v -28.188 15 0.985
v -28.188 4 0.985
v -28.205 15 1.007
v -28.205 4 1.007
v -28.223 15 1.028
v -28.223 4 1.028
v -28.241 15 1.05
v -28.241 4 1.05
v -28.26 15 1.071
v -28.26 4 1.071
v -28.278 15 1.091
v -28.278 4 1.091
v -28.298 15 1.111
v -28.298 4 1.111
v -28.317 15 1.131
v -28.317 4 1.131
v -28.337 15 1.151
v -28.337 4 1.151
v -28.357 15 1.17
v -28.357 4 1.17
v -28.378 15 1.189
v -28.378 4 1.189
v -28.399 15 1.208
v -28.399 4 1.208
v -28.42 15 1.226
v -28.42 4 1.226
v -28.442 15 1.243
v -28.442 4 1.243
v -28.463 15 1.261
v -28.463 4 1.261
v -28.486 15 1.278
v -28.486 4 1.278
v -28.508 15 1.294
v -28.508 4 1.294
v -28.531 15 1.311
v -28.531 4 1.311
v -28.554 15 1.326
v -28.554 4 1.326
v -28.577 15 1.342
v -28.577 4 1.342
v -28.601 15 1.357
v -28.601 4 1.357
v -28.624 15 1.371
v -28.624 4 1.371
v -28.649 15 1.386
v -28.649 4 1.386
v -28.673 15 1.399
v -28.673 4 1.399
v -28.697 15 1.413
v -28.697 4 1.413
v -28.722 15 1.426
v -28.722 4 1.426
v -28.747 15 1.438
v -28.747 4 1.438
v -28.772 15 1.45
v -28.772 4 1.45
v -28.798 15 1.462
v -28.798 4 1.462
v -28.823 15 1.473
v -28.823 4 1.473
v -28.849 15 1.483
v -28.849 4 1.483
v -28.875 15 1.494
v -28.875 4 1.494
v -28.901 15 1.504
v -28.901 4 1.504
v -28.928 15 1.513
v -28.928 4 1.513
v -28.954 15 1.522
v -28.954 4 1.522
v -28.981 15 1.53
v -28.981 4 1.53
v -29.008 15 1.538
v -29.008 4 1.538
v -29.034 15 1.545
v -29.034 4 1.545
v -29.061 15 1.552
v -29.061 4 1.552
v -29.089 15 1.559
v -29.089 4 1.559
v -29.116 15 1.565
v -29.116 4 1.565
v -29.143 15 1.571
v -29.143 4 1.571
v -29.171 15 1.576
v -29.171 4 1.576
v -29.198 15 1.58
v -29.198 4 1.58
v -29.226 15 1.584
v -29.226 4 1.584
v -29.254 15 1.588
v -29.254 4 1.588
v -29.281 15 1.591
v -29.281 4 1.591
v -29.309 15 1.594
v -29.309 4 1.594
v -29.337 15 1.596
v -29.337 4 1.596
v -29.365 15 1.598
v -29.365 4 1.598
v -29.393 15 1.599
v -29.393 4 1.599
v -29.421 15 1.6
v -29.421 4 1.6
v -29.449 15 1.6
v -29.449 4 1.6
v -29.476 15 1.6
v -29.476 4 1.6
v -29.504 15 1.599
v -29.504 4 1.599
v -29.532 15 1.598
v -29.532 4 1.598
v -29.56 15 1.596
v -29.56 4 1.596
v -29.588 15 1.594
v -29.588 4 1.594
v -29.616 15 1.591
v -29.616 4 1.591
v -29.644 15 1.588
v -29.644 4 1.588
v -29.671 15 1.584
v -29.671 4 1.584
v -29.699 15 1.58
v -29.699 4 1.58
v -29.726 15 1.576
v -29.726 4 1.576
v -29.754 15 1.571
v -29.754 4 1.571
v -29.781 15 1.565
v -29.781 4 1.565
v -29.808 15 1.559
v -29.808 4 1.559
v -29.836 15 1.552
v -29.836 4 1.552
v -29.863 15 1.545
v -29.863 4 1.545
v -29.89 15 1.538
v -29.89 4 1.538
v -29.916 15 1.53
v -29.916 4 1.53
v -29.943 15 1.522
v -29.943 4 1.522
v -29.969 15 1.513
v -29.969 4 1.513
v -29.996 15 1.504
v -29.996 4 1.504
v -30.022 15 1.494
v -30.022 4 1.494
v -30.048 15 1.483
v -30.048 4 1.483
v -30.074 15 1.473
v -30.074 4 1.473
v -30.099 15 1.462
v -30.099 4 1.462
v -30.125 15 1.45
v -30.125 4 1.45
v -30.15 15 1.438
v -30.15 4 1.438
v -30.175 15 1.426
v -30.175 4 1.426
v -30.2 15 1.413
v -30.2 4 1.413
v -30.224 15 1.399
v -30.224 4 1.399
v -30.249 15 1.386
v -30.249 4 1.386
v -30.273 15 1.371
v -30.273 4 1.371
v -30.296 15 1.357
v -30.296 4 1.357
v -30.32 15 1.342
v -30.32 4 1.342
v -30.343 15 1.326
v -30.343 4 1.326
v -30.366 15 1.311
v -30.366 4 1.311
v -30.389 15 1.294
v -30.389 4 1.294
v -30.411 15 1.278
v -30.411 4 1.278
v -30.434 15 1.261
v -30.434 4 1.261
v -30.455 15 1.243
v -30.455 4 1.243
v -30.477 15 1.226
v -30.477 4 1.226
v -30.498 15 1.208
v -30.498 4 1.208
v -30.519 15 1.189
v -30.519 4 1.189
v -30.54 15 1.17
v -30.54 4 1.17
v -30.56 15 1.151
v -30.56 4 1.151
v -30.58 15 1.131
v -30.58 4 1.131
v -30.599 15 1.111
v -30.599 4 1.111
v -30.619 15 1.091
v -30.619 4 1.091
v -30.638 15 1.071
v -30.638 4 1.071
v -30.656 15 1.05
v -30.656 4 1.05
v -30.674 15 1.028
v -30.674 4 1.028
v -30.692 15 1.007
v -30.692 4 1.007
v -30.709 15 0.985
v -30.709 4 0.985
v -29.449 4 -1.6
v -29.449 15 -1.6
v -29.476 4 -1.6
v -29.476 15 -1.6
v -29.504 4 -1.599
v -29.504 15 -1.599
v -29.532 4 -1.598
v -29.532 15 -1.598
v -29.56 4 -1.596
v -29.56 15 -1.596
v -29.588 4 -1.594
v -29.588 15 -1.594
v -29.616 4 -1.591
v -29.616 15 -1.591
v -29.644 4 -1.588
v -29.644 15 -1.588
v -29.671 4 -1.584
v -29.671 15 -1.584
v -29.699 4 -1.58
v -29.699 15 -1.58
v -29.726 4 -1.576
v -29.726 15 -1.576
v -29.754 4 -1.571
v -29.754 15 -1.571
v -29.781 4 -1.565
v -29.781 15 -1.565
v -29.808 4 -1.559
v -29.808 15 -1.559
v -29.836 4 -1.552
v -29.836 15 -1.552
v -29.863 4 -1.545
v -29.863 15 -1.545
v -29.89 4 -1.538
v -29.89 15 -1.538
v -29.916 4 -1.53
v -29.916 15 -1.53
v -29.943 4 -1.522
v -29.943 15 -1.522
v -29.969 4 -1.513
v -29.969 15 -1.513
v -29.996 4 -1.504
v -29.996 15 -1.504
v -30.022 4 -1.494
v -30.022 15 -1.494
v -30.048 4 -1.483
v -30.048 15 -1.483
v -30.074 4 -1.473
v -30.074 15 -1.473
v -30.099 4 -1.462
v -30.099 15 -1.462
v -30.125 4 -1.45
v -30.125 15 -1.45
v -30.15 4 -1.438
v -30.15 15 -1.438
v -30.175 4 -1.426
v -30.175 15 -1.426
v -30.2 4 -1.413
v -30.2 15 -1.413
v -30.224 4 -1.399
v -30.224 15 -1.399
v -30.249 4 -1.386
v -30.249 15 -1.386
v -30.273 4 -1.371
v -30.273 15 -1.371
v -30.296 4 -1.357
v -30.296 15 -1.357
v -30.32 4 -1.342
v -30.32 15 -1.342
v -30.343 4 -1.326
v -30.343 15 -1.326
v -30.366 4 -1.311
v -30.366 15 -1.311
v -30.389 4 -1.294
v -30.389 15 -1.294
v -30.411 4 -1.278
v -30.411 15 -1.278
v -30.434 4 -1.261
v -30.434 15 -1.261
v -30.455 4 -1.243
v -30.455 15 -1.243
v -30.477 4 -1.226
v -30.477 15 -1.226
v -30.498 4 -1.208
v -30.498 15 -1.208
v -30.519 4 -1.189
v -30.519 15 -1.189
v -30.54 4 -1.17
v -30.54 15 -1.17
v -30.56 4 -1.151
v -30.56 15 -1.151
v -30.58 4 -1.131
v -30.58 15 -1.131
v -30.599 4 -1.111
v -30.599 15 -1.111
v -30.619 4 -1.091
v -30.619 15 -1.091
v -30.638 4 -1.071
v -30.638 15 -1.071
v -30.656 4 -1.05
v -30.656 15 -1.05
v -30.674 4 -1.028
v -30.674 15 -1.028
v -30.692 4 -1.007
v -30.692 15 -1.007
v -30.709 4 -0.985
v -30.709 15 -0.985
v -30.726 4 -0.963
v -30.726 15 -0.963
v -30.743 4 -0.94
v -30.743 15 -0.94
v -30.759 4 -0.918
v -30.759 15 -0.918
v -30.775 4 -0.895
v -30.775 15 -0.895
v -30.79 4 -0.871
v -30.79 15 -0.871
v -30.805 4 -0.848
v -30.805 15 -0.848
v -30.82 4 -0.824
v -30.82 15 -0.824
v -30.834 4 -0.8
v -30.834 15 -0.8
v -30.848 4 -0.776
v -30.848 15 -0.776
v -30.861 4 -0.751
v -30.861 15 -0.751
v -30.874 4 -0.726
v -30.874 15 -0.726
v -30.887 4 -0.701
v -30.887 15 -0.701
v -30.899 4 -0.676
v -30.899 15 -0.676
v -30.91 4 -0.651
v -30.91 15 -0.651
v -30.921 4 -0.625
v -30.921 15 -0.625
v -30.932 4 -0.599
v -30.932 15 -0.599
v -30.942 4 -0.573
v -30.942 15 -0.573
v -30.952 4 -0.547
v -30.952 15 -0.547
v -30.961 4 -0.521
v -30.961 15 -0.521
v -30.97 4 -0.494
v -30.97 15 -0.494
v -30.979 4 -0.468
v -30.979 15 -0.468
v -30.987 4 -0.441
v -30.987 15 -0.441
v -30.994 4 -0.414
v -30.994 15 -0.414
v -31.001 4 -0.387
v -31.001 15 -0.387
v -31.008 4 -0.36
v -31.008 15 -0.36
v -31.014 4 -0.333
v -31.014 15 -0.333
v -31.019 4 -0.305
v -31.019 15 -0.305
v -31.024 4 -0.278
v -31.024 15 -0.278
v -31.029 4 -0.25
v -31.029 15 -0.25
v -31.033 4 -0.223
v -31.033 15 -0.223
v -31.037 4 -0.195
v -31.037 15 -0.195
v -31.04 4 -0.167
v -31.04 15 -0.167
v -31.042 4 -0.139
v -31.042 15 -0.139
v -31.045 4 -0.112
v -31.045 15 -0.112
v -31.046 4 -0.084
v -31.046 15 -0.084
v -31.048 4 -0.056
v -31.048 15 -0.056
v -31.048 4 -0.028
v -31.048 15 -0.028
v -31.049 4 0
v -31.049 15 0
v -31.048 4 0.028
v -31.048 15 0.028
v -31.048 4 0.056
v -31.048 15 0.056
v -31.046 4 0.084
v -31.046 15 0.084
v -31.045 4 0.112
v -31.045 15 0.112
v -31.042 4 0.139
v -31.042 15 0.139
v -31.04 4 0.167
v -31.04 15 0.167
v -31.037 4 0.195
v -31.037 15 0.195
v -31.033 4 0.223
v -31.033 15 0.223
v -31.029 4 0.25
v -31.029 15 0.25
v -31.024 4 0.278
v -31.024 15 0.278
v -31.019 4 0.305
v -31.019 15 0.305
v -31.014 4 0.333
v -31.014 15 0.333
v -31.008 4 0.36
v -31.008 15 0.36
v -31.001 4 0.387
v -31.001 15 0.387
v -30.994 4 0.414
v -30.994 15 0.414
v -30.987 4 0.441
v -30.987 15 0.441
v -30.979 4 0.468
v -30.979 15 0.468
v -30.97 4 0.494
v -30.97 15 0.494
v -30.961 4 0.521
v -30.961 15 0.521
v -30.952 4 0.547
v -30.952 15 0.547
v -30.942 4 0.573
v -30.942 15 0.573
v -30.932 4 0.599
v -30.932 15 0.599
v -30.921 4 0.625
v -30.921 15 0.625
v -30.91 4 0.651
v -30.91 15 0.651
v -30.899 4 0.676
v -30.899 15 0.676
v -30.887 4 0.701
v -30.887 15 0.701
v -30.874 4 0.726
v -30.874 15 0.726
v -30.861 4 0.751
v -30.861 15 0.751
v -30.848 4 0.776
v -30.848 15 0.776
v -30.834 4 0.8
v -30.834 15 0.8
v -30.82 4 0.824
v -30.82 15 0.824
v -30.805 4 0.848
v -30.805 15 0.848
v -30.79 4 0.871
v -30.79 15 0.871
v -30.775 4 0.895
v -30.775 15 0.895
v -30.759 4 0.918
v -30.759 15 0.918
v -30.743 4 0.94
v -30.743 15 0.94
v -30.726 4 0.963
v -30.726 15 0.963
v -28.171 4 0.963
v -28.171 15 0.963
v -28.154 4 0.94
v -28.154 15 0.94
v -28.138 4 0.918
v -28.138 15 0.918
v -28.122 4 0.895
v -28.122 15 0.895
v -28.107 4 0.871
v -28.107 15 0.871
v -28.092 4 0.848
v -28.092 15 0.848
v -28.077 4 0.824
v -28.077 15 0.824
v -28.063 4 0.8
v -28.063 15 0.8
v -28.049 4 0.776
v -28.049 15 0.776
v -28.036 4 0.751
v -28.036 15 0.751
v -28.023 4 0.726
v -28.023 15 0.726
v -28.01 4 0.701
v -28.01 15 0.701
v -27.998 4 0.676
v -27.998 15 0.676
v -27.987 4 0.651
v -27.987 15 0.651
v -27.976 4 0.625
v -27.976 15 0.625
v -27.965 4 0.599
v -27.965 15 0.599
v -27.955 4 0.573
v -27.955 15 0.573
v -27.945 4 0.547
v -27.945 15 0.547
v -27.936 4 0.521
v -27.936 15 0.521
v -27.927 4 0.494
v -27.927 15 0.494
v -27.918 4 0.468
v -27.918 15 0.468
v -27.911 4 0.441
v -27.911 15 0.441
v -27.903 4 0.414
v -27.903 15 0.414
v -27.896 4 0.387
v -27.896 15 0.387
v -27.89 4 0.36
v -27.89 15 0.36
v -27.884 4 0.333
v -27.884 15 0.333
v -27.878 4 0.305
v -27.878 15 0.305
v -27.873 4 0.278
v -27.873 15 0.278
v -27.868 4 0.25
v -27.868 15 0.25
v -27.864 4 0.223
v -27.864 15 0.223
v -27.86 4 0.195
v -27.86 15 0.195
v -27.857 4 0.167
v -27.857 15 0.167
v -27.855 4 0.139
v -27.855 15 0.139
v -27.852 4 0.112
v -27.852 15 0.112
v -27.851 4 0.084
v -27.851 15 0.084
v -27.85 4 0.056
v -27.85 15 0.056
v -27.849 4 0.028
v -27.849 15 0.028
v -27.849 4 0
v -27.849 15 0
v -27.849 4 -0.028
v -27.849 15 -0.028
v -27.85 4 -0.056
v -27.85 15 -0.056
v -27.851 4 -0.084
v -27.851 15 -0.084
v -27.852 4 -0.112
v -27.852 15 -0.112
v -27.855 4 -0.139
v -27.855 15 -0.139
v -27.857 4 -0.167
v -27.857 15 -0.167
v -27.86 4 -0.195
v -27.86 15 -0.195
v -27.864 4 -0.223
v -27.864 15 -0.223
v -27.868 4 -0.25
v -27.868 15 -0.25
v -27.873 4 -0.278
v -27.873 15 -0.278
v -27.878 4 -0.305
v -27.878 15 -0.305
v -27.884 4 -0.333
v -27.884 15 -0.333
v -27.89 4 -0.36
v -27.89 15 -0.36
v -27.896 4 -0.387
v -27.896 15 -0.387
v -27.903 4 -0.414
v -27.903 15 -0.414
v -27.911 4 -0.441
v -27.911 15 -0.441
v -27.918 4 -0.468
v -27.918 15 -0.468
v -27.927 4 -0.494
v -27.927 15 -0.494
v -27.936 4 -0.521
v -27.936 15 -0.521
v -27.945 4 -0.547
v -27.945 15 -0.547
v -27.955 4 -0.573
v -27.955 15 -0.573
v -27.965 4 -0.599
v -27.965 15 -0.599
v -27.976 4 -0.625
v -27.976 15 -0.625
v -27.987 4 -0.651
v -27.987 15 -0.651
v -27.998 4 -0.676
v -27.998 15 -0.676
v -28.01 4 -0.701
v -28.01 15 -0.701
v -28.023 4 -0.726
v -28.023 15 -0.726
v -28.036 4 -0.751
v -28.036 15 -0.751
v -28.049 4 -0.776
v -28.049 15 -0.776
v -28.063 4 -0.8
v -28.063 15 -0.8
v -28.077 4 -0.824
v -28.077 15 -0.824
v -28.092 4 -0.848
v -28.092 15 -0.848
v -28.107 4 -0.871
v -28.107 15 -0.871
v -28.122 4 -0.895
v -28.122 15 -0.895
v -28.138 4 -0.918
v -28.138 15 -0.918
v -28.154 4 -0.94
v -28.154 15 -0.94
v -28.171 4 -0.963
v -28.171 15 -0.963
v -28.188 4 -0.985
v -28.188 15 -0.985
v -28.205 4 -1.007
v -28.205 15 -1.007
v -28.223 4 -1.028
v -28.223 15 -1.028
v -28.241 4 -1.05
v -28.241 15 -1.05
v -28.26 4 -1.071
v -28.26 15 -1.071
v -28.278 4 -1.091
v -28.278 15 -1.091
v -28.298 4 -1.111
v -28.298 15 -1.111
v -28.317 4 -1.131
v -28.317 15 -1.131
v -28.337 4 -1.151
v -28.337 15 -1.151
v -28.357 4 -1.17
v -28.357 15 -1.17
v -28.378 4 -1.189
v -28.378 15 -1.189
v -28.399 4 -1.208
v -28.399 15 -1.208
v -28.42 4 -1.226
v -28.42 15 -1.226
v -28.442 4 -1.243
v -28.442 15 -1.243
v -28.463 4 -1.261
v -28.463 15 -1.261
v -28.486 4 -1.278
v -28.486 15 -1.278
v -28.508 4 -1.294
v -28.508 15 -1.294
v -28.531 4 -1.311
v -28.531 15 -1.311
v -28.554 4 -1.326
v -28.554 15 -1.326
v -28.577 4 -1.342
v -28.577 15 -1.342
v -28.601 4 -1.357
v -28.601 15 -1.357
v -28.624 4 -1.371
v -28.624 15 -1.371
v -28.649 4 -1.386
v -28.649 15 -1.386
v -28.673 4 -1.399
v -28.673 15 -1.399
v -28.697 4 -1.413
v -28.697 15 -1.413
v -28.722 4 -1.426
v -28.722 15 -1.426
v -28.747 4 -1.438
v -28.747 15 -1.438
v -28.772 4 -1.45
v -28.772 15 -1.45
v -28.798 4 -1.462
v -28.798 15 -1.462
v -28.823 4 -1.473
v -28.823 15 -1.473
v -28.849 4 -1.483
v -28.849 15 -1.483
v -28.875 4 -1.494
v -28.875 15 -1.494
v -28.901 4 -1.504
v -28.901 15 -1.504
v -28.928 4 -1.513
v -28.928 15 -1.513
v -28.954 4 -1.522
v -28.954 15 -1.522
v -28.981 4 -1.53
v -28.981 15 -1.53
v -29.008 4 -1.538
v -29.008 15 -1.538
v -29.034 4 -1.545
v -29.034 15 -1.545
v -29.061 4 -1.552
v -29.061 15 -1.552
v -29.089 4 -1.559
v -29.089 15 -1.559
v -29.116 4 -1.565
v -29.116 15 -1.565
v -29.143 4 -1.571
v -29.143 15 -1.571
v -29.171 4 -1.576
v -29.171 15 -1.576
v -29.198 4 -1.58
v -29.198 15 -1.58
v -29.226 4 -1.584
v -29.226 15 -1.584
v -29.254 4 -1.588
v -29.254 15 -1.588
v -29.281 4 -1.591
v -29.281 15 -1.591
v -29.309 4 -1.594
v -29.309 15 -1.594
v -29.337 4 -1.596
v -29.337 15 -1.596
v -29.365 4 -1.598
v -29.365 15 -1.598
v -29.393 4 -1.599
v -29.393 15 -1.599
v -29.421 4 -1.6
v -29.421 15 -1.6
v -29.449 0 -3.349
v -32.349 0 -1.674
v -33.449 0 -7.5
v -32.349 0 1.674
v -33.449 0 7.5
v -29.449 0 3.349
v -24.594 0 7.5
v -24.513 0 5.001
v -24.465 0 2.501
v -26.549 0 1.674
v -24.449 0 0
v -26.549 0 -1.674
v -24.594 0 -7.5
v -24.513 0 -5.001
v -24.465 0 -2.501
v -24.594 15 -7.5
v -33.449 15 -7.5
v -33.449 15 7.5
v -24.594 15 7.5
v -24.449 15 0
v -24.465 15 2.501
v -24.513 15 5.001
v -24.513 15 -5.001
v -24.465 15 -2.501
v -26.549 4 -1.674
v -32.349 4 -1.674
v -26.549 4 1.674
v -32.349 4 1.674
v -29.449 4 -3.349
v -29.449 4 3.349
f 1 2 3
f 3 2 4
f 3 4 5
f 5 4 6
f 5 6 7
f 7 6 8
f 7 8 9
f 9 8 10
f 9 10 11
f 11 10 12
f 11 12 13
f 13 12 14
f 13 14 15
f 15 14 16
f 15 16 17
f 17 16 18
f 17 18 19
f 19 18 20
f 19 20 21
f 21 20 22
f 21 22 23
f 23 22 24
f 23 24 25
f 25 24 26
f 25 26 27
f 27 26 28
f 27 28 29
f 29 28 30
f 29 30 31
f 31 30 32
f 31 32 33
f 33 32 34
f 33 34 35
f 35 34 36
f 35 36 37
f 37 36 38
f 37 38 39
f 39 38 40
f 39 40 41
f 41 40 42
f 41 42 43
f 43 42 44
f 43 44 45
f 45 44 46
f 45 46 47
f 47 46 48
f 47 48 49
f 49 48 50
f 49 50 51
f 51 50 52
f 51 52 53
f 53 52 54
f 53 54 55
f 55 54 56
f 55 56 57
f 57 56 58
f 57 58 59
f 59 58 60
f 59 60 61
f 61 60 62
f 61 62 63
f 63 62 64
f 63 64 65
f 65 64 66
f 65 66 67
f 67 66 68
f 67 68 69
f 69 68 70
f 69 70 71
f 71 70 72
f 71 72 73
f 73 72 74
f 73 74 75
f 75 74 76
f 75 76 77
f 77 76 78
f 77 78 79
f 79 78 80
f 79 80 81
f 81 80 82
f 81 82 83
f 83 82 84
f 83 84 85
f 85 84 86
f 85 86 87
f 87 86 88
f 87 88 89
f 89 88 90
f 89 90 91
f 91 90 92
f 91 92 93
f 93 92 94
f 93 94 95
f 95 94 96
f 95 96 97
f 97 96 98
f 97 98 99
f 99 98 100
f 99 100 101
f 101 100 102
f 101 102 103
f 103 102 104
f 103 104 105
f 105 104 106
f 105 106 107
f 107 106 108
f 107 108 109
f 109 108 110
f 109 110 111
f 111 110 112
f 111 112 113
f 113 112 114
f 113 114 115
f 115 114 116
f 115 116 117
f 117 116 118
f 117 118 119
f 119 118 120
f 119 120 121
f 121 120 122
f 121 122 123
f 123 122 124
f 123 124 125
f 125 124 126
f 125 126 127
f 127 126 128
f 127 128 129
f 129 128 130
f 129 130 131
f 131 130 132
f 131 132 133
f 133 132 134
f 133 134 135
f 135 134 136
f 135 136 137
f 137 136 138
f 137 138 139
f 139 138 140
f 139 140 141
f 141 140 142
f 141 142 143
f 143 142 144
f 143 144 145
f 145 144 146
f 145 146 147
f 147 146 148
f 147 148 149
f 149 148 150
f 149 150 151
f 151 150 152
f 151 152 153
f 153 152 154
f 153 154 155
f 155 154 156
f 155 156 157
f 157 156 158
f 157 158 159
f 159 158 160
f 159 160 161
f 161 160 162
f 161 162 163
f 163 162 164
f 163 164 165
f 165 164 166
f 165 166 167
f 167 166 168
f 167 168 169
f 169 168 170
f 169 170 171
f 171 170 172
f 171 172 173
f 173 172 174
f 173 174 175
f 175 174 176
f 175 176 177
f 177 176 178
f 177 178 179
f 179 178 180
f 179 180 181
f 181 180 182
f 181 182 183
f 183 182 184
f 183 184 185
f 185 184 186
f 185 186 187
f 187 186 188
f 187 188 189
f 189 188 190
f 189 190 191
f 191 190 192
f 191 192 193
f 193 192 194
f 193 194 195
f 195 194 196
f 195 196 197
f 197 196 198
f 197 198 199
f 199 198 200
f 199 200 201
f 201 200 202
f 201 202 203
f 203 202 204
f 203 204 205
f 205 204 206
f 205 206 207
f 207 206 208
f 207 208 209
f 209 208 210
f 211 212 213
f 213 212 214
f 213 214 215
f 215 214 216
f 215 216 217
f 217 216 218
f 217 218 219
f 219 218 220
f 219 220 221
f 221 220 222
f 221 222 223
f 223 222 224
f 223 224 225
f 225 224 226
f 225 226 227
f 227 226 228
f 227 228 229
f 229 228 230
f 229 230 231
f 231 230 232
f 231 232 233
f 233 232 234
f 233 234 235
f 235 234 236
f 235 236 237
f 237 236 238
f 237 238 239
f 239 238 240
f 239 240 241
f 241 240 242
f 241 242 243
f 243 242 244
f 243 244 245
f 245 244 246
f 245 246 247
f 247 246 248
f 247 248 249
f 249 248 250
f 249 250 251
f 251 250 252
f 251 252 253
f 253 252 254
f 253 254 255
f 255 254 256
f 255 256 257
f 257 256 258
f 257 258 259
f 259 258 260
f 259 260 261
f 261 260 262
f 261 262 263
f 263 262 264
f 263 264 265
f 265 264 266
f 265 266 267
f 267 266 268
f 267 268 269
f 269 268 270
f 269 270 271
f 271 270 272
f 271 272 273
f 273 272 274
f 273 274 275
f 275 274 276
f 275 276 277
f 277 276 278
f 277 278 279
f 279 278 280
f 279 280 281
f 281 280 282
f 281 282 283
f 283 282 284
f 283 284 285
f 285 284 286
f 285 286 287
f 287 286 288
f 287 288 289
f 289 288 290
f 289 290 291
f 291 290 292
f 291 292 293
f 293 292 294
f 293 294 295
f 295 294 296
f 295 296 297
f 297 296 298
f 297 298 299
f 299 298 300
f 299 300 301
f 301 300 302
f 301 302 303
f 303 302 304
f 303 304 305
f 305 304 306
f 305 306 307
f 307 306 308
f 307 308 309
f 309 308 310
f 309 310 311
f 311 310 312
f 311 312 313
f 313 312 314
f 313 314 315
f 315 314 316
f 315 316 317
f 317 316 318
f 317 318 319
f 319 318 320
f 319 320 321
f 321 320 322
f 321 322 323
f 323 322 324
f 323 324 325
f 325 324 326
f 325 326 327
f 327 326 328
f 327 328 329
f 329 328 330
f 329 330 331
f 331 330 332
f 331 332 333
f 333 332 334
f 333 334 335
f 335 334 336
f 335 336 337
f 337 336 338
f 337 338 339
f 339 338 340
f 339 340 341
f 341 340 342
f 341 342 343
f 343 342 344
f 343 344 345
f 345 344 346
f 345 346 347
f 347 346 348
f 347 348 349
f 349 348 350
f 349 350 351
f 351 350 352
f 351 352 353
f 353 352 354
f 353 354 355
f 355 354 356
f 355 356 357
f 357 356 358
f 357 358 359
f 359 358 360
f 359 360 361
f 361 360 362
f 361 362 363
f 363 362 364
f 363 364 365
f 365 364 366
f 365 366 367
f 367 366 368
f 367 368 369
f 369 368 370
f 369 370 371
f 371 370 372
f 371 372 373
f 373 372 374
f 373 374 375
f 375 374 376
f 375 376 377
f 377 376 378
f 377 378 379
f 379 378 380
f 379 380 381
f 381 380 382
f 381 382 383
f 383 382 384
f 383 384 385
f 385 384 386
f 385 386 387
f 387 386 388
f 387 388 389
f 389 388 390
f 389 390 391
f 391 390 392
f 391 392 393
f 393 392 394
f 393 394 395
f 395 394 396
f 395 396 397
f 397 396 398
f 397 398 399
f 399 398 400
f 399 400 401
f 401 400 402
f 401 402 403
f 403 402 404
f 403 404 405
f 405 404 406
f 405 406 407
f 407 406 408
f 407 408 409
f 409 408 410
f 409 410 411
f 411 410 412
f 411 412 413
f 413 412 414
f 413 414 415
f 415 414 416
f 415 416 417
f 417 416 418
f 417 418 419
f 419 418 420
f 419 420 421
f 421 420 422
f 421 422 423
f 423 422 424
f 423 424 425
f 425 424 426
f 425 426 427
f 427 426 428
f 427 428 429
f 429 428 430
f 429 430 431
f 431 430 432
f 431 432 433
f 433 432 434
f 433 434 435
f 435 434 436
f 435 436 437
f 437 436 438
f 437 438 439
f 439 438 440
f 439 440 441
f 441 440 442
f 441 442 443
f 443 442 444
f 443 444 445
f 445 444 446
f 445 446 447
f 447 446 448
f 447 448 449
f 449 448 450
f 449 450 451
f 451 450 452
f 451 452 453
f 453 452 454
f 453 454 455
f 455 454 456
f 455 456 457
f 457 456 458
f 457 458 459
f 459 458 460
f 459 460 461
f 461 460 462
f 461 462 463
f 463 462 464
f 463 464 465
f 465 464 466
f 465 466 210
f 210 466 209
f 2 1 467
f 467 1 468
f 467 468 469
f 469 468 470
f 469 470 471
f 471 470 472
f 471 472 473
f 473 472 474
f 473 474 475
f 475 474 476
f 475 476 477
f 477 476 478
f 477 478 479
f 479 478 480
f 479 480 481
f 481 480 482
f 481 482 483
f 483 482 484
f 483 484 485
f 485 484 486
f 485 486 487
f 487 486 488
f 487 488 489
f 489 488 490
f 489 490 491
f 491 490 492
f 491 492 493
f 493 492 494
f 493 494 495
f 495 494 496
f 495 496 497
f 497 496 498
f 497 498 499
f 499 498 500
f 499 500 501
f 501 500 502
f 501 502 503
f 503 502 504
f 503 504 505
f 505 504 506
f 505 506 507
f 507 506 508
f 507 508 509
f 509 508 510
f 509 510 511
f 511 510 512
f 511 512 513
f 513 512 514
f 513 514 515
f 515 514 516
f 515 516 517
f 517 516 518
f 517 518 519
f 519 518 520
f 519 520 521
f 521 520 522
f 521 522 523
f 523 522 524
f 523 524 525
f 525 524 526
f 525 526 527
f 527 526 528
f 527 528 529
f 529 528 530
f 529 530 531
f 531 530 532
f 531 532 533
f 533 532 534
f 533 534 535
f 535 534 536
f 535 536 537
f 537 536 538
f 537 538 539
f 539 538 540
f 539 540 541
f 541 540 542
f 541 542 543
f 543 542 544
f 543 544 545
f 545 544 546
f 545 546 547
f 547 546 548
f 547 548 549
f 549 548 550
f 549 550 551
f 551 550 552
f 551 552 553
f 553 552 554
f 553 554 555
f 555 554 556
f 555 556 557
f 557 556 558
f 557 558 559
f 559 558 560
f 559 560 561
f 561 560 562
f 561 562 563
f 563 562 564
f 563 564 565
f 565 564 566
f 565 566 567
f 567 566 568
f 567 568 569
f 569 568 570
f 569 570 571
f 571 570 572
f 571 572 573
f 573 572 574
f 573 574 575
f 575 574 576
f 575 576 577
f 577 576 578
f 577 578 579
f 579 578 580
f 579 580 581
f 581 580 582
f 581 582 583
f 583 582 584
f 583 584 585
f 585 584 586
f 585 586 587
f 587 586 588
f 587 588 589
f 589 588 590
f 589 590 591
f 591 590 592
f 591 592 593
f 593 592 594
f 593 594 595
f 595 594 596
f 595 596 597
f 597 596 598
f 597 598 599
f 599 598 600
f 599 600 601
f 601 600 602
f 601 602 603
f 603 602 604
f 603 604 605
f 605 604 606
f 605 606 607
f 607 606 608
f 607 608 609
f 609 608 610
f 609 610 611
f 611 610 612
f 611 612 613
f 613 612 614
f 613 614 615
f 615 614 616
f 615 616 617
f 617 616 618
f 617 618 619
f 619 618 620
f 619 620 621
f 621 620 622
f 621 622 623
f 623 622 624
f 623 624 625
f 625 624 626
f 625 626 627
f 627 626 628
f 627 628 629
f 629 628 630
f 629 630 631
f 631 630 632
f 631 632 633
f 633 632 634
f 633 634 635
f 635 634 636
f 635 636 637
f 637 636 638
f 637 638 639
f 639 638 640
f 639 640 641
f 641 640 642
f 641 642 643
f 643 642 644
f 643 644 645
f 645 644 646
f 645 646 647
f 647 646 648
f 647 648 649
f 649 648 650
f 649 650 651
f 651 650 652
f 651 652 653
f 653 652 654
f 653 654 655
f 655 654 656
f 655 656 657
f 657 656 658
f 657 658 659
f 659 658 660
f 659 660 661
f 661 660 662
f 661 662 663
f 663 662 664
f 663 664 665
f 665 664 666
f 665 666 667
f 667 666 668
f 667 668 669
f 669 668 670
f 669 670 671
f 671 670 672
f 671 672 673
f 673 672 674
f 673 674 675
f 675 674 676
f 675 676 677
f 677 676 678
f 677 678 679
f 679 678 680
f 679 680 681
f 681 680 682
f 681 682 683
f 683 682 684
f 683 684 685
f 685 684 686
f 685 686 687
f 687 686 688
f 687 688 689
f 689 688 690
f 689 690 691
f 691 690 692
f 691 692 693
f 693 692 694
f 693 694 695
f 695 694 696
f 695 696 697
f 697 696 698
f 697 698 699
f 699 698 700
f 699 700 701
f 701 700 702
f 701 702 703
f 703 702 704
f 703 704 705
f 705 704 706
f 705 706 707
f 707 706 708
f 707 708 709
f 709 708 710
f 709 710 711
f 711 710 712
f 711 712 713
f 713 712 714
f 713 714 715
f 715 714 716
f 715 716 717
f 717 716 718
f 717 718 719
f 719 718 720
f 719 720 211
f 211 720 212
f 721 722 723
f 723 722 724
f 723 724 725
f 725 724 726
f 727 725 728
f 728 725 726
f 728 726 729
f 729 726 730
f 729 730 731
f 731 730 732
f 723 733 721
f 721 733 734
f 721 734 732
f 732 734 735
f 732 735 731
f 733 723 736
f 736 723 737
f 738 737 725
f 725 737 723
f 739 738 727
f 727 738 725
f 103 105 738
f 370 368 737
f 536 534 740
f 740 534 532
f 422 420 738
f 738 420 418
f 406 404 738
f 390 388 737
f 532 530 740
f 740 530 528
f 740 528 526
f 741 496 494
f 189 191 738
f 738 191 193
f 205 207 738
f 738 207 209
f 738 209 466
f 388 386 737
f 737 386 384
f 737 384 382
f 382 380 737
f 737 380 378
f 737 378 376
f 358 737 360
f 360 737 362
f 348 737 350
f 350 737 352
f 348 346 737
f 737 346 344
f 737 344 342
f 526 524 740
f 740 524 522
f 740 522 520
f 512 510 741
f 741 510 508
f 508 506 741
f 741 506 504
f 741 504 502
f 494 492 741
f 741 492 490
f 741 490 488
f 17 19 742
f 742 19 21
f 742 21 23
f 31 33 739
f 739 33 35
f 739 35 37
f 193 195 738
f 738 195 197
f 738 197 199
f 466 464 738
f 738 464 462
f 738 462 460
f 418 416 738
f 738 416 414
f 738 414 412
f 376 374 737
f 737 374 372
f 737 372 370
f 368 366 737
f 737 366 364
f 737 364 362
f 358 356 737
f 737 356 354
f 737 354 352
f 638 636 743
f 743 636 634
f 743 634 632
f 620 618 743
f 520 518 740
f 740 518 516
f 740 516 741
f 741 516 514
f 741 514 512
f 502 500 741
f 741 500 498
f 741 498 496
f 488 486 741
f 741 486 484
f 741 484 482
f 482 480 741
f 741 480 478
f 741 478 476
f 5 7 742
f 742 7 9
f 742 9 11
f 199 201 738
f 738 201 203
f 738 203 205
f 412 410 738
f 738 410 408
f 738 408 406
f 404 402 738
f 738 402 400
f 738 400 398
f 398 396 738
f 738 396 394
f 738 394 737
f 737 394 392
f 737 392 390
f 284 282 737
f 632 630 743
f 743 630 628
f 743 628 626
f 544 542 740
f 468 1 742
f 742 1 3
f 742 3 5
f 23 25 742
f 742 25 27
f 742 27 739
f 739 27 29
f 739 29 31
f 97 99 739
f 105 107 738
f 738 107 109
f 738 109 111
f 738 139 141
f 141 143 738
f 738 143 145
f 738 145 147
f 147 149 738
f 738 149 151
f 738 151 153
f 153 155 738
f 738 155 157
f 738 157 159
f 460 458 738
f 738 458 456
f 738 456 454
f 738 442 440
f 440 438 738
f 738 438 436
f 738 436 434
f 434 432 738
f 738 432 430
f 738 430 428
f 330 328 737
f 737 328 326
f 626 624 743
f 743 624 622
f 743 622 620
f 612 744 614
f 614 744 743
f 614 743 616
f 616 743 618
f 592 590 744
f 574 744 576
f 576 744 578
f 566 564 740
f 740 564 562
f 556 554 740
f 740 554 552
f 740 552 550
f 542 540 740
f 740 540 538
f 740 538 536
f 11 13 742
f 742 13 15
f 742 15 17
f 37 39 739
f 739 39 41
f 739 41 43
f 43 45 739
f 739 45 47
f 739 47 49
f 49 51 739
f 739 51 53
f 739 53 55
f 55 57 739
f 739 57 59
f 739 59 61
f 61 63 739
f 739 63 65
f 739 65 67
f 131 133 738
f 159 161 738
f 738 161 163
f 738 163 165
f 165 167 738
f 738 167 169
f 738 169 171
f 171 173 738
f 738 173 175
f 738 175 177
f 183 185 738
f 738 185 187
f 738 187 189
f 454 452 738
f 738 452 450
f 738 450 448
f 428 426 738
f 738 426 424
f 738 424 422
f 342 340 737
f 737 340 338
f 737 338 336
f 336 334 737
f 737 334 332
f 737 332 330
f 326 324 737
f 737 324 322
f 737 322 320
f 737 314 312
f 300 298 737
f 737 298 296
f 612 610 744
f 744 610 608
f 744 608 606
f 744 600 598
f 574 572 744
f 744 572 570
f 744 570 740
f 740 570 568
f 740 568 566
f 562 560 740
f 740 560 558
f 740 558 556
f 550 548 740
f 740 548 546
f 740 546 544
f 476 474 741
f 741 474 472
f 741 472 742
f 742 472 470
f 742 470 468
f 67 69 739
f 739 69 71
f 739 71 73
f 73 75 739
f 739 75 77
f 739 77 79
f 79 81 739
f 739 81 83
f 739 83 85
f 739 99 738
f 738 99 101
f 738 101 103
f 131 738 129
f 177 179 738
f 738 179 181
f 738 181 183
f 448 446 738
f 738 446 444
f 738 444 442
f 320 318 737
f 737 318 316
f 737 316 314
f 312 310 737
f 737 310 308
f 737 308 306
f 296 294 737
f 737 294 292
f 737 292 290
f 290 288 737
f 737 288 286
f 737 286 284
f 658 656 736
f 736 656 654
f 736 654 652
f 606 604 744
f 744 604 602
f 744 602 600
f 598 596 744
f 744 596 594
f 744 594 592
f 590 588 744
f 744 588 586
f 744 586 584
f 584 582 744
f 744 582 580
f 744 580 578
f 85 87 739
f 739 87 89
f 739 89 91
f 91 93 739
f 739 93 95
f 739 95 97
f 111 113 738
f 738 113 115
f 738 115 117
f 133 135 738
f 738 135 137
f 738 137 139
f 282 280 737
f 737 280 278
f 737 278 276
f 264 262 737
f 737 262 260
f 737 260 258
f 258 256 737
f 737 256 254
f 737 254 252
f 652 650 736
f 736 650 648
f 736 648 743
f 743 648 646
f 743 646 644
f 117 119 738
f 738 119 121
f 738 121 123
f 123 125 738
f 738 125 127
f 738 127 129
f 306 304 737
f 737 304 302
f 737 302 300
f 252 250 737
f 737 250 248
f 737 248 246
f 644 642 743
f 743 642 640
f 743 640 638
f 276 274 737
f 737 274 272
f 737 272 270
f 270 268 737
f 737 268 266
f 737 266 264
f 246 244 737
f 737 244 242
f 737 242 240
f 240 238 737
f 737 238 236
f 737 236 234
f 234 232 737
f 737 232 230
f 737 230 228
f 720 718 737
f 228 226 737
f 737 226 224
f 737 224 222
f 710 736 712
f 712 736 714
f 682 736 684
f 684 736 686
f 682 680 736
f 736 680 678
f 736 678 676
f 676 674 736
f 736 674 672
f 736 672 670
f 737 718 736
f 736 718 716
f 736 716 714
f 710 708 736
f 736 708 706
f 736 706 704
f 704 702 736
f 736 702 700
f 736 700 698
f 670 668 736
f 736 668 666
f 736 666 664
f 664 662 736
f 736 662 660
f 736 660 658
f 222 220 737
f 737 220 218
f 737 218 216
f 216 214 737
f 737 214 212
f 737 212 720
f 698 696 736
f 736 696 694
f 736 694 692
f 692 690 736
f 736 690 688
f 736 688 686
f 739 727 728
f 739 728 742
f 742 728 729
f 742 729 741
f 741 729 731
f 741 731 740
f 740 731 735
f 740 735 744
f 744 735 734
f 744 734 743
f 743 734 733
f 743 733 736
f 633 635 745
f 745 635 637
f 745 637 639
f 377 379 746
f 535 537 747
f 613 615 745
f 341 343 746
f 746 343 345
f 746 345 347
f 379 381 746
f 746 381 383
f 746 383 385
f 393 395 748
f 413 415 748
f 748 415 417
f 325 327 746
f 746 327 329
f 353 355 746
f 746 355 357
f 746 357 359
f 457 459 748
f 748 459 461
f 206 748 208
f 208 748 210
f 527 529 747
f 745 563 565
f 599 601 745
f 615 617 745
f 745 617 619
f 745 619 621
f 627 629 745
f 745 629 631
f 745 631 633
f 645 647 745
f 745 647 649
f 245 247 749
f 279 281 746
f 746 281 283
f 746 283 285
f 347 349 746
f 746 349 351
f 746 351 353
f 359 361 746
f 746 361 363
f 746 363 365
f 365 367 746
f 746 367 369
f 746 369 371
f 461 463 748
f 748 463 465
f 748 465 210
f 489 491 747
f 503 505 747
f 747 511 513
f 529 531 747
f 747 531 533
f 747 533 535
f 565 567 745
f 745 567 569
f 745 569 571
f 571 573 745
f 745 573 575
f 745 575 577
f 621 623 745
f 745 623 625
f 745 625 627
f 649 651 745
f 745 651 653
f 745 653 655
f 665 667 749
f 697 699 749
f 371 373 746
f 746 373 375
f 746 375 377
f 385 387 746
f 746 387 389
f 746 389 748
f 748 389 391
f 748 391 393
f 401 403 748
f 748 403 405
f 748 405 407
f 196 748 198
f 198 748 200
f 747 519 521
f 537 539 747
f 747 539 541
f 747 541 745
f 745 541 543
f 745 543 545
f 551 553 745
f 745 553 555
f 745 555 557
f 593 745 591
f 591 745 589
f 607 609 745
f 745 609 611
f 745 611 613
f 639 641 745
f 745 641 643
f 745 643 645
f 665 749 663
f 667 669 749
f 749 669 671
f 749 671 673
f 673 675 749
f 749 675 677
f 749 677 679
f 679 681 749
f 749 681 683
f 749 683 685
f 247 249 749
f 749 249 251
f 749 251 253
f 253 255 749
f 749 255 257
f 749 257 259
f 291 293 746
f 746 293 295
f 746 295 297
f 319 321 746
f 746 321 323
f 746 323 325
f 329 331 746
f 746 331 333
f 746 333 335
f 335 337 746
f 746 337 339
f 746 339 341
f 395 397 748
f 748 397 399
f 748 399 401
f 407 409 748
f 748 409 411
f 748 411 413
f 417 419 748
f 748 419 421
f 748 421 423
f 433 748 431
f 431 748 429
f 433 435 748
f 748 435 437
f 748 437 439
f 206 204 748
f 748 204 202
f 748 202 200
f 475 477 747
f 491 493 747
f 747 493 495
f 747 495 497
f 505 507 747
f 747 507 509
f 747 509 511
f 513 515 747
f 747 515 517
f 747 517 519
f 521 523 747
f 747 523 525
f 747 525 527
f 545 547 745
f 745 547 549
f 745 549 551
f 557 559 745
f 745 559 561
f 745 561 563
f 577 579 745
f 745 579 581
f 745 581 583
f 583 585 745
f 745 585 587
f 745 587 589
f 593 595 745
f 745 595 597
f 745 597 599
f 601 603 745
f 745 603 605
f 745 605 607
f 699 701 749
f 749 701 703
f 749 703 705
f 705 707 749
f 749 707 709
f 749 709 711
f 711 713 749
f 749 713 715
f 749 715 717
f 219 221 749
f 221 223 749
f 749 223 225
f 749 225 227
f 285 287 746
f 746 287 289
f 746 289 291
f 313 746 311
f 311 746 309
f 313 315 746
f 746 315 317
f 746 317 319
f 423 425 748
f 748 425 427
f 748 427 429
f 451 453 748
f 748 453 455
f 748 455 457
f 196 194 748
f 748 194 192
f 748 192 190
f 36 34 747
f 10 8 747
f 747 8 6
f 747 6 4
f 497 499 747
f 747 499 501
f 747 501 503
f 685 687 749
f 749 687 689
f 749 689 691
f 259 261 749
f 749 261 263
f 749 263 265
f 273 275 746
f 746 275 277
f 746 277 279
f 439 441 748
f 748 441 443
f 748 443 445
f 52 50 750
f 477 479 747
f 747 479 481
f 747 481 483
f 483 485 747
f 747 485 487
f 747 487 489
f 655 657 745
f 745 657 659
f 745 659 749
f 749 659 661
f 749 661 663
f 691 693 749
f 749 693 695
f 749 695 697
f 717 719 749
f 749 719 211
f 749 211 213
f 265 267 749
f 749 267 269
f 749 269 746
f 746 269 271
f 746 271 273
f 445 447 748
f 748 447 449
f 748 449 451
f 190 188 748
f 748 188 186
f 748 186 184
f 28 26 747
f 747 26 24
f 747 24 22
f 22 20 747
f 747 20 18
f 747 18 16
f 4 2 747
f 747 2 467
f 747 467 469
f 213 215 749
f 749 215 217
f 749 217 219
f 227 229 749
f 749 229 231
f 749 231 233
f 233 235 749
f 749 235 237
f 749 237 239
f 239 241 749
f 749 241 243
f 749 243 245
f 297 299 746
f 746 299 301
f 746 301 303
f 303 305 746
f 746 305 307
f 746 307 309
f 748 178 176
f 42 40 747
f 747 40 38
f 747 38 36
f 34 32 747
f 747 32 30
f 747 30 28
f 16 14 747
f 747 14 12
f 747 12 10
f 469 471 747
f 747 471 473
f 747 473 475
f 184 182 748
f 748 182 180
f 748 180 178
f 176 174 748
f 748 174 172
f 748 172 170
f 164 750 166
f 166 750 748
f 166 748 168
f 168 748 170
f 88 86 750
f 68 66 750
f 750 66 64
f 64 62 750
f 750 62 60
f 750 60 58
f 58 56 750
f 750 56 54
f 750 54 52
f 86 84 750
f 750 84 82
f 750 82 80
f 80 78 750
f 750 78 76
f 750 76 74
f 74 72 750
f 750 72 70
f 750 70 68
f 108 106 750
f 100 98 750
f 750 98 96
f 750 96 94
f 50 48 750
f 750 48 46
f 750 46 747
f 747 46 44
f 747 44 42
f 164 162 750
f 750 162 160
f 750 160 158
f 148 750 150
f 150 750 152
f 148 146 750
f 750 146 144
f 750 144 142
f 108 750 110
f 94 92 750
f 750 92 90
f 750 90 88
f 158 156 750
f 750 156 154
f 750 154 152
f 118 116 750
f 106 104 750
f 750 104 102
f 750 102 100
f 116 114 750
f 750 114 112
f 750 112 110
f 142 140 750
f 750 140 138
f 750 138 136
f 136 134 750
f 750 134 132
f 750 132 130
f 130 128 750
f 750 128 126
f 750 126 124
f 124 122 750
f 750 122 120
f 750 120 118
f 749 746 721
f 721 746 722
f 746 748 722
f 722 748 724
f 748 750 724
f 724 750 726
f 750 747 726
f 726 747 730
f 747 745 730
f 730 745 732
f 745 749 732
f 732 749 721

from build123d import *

# Parameters (mm, degrees)
SKETCH_1_W          = 66.89708457
SKETCH_1_H          = 15
EXTRUDE_1_DEPTH     = 15
CUT_EXTRUDE_1_REACH = 39.417
HOLE_WIZARD_M3_1_D  = 3.2
CUT_EXTRUDE_2_DEPTH = 4


with BuildPart() as part:
    # 草图1 → 凸台-拉伸1 (new body)
    with BuildSketch(Plane(origin=(0, 0, 0), x_dir=(1, 0, 0), z_dir=(0, 1, 0))):
        Rectangle(SKETCH_1_W, SKETCH_1_H)
    extrude(amount=EXTRUDE_1_DEPTH)

    # 草图2 → 切除-拉伸1 (cut, up to next)
    with BuildSketch(Plane.XZ, mode=Mode.PRIVATE) as cut_extrude_1_sk1:
        with BuildLine():
            Line((-24.593570721, 7.5), (33.448542285, 7.5))
            Line((33.448542285, 7.5), (33.448542285, -7.5))
            Line((33.448542285, -7.5), (-24.593570721, -7.5))
            ThreePointArc((-24.593570721, -7.5), (-24.448542285, 0), (-24.593570721, 7.5))
        make_face()
    cut_extrude_1_tool1 = extrude(cut_extrude_1_sk1.sketch, amount=-CUT_EXTRUDE_1_REACH, mode=Mode.PRIVATE) & part.part
    add(cut_extrude_1_tool1.solids().sort_by_distance((4.475816, 0, 0))[0], mode=Mode.SUBTRACT)

    # M3 间隙孔1 (through all)
    with Locations(Plane(origin=(0, 0, 0), x_dir=(-1, 0, 0), z_dir=(0, -1, 0))):
        with Locations((29.448542285, 0)):
            Hole(HOLE_WIZARD_M3_1_D / 2)

    # 草图5 → 切除-拉伸2 (cut)
    with BuildSketch(Plane.XZ):
        Polygon((-29.448542285, -3.348631561), (-26.548542285, -1.674315781), (-26.548542285, 1.674315781), (-29.448542285, 3.348631561), (-32.348542285, 1.674315781), (-32.348542285, -1.674315781), align=None)
    extrude(amount=-CUT_EXTRUDE_2_DEPTH, mode=Mode.SUBTRACT)


solid = part.part
